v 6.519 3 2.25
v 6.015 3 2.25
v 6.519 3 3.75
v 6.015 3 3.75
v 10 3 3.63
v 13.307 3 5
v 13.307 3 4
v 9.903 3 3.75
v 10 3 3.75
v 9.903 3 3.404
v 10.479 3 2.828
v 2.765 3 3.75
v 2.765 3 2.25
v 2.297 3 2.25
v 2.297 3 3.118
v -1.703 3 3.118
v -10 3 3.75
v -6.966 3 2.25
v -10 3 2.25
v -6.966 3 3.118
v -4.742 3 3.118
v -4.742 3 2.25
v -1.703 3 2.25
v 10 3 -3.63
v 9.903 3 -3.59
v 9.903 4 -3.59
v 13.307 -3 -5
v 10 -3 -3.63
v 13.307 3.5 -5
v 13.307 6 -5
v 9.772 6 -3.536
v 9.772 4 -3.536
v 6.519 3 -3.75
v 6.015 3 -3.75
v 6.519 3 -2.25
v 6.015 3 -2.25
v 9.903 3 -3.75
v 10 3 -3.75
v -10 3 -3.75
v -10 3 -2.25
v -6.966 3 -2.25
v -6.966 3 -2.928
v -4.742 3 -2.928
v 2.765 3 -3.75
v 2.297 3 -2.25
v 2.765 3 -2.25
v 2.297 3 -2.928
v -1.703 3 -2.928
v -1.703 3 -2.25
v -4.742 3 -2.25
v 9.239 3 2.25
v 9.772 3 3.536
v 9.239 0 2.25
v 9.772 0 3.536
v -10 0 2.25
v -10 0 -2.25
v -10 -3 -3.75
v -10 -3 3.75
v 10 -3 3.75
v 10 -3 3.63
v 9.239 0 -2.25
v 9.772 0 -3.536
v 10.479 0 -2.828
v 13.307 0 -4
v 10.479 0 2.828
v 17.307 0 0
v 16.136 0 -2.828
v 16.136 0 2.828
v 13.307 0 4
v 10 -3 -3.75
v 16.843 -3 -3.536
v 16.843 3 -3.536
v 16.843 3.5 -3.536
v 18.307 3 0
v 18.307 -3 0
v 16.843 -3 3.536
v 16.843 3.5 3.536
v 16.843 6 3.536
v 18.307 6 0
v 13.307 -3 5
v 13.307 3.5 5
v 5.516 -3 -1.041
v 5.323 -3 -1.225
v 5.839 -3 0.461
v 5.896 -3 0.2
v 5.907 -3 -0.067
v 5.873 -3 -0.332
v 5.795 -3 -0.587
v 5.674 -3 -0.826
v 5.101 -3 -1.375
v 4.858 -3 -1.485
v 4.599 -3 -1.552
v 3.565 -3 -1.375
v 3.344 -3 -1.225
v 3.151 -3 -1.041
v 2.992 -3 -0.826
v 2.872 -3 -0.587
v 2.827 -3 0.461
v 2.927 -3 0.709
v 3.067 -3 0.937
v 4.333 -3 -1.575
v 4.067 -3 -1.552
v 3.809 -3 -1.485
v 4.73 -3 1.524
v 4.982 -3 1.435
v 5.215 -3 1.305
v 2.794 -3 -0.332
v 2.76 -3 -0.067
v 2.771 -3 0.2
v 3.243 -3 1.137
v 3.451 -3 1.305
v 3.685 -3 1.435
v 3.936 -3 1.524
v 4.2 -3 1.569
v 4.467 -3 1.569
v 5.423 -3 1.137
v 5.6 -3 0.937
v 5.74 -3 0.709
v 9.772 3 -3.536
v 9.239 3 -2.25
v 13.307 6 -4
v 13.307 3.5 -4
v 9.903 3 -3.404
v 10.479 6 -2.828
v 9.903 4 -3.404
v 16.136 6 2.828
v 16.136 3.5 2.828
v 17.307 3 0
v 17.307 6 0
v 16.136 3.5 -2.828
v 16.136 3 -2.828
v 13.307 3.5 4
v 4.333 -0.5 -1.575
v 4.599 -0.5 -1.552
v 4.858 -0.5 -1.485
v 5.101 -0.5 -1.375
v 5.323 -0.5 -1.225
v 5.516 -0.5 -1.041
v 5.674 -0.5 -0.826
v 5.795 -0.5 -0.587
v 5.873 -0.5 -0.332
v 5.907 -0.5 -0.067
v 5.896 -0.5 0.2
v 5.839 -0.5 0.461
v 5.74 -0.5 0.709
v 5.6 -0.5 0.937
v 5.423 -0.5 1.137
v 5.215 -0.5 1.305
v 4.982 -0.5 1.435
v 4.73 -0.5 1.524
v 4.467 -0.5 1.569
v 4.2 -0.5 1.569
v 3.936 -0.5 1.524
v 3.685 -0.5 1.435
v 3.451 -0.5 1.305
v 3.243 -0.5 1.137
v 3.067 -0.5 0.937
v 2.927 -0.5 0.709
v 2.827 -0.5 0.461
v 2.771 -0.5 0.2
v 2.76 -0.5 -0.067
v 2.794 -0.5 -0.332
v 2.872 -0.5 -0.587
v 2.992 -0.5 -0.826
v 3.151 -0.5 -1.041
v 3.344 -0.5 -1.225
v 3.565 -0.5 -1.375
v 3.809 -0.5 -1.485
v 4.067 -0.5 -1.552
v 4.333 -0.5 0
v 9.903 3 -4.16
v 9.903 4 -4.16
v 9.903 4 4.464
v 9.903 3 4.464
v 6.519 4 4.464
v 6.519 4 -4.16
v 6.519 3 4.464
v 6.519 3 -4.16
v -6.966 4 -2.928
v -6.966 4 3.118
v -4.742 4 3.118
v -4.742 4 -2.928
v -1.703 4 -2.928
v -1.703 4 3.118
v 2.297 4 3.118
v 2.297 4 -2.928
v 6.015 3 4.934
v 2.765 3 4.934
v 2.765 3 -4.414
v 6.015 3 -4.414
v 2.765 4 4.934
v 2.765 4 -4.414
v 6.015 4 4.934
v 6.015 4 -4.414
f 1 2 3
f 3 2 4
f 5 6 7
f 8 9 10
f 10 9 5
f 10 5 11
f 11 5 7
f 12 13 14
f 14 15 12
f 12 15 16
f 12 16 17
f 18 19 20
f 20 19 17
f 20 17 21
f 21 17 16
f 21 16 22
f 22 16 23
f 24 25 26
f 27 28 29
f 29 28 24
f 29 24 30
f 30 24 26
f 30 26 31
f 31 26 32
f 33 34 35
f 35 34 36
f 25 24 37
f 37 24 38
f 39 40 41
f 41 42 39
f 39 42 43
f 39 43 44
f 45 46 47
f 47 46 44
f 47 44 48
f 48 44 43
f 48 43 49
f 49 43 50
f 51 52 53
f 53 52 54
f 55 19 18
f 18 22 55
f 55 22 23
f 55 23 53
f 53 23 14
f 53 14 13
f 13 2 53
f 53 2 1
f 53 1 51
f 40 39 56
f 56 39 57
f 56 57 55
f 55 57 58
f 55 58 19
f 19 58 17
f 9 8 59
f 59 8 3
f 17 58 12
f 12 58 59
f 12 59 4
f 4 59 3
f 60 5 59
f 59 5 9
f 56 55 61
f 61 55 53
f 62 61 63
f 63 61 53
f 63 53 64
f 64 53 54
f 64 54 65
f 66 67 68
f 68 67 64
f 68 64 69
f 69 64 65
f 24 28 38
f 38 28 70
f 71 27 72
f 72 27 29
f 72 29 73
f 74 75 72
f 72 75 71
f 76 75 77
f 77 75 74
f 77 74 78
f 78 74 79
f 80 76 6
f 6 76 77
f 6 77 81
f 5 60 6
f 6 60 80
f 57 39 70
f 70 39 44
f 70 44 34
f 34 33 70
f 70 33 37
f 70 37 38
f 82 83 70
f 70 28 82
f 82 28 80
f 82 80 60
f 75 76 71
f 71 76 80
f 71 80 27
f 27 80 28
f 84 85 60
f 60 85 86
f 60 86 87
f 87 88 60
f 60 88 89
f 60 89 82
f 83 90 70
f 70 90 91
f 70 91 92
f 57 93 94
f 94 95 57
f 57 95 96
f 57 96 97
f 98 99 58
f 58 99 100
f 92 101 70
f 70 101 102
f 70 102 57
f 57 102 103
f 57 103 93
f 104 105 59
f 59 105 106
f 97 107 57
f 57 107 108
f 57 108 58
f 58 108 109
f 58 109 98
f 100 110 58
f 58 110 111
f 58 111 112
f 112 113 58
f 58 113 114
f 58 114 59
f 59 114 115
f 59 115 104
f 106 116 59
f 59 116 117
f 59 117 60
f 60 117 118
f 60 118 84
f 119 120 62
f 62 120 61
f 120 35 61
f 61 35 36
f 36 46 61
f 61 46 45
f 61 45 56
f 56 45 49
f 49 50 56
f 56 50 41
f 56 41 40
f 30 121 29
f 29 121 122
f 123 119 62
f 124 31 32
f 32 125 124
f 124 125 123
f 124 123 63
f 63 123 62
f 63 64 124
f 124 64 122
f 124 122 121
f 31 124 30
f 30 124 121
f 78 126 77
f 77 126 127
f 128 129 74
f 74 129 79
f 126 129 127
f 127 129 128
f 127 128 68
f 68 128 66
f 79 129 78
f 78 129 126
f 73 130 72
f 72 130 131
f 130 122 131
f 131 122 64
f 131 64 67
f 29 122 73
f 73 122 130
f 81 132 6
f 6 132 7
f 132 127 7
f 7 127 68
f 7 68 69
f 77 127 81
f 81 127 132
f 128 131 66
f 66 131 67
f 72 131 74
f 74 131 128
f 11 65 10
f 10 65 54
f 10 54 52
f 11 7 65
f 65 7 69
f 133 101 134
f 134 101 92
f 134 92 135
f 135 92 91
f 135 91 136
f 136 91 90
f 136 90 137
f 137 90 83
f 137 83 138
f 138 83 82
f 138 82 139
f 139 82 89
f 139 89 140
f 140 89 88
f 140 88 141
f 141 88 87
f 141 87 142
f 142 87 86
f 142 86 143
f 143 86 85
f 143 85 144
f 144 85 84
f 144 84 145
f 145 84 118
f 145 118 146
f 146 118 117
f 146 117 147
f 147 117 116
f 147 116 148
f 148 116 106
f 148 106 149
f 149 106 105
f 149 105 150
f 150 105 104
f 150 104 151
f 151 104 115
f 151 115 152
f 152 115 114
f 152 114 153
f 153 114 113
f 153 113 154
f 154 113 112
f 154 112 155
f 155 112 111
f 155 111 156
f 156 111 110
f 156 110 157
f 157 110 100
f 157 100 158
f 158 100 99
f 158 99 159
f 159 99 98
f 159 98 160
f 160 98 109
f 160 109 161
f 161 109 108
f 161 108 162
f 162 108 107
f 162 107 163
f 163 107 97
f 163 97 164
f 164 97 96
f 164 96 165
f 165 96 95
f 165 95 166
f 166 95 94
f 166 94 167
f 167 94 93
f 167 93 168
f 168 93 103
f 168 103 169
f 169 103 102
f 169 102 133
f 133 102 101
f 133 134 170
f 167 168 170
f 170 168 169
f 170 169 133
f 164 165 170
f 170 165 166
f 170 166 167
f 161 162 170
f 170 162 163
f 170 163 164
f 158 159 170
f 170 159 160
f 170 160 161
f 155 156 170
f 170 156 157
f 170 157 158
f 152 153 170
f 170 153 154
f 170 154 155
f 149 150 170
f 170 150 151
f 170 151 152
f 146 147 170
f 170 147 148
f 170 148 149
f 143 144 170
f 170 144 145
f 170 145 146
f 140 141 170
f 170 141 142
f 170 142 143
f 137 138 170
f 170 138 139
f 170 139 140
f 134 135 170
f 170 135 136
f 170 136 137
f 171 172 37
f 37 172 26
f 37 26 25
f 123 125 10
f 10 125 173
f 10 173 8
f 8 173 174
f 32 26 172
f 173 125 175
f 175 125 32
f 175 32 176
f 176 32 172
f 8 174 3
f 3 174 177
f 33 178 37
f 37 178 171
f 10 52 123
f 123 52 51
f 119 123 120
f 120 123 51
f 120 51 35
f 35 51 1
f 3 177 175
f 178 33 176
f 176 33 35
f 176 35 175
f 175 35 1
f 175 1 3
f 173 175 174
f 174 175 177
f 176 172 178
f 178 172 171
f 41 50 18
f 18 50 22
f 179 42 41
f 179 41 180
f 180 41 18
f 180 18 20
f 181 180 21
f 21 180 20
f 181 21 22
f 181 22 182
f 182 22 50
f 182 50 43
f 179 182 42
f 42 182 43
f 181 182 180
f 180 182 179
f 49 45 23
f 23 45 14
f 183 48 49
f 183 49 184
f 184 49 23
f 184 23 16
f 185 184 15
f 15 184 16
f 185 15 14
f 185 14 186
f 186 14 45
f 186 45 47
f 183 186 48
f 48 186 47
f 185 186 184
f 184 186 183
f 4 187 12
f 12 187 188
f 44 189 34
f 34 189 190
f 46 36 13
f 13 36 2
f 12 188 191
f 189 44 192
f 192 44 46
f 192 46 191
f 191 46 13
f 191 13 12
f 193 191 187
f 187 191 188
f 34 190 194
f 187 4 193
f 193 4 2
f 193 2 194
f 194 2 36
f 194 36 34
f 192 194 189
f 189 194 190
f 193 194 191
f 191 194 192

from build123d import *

# Parameters (mm, degrees)
SALIENTE_EXTRUIR1_DEPTH   = 3
SALIENTE_EXTRUIR1_2_DEPTH = 3
SALIENTE_EXTRUIR2_DEPTH   = 6
SALIENTE_EXTRUIR2_2_DEPTH = 6
SALIENTE_EXTRUIR3_DEPTH   = 3.5
SALIENTE_EXTRUIR3_2_DEPTH = 3.5
SALIENTE_EXTRUIR4_DEPTH   = 3
SALIENTE_EXTRUIR4_2_DEPTH = 3
SALIENTE_EXTRUIR5_DEPTH   = 3
CROQUIS3_R                = 1.575
CORTAR_EXTRUIR1_DEPTH     = 2.5
CROQUIS4_W                = 3.383823373
CROQUIS4_H                = 8.6242578
CROQUIS4_W_2              = 3.249859327
CROQUIS4_H_2              = 9.348028676
CROQUIS4_W_3              = 4.000427531
CROQUIS4_H_3              = 6.045673659
CROQUIS4_W_4              = 2.224540958
SALIENTE_EXTRUIR6_DEPTH   = 1


with BuildPart() as part:
    # Croquis1 → Saliente-Extruir1 (new body)
    with BuildSketch(Plane(origin=(0, 0, 0), x_dir=(1, 0, 0), z_dir=(0, 1, 0))):
        Polygon((-10, -2.25), (-10, -3.75), (10, -3.75), (10, -3.630117405), (9.771655233, -3.535533906), (9.239169654, -2.25), align=None)
    extrude(amount=SALIENTE_EXTRUIR1_DEPTH)



with BuildPart() as body_2:
    # Croquis1 → Saliente-Extruir1 2 (new body)
    with BuildSketch(Plane(origin=(0, 0, 0), x_dir=(1, 0, 0), z_dir=(0, 1, 0))):
        Polygon((-10, 3.75), (-10, 2.25), (9.239169654, 2.25), (9.771655233, 3.535533906), (10, 3.630117405), (10, 3.75), align=None)
    extrude(amount=SALIENTE_EXTRUIR1_2_DEPTH)


with BuildPart() as body_3:
    # Croquis1<3> → Saliente-Extruir2 (new body)
    with BuildSketch(Plane(origin=(0, 0, 0), x_dir=(1, 0, 0), z_dir=(0, 1, 0))):
        Polygon((16.135616264, -2.828427125), (16.842723045, -3.535533906), (18.307189139, 0), (17.307189139, 0), align=None)
    extrude(amount=SALIENTE_EXTRUIR2_DEPTH)


with BuildPart() as body_4:
    # Croquis1<3> → Saliente-Extruir2 2 (new body)
    with BuildSketch(Plane(origin=(0, 0, 0), x_dir=(1, 0, 0), z_dir=(0, 1, 0))):
        Polygon((9.771655233, 3.535533906), (10.478762014, 2.828427125), (13.307189139, 4), (13.307189139, 5), align=None)
    extrude(amount=SALIENTE_EXTRUIR2_2_DEPTH)


with BuildPart() as body_5:
    # Croquis1<4> → Saliente-Extruir3 (new body)
    with BuildSketch(Plane(origin=(0, 0, 0), x_dir=(1, 0, 0), z_dir=(0, 1, 0))):
        Polygon((13.307189139, -4), (13.307189139, -5), (16.842723045, -3.535533906), (16.135616264, -2.828427125), align=None)
    extrude(amount=SALIENTE_EXTRUIR3_DEPTH)


with BuildPart() as body_6:
    # Croquis1<4> → Saliente-Extruir3 2 (new body)
    with BuildSketch(Plane(origin=(0, 0, 0), x_dir=(1, 0, 0), z_dir=(0, 1, 0))):
        Polygon((16.135616264, 2.828427125), (16.842723045, 3.535533906), (13.307189139, 5), (13.307189139, 4), align=None)
    extrude(amount=SALIENTE_EXTRUIR3_2_DEPTH)


with BuildPart() as body_7:
    # Croquis1<5> → Saliente-Extruir4 (new body)
    with BuildSketch(Plane(origin=(0, 0, 0), x_dir=(1, 0, 0), z_dir=(0, 1, 0))):
        Polygon((9.771655233, -3.535533906), (13.307189139, -5), (13.307189139, -4), (10.478762014, -2.828427125), align=None)
    extrude(amount=SALIENTE_EXTRUIR4_DEPTH)


with BuildPart() as body_8:
    # Croquis1<5> → Saliente-Extruir4 2 (new body)
    with BuildSketch(Plane(origin=(0, 0, 0), x_dir=(1, 0, 0), z_dir=(0, 1, 0))):
        Polygon((17.307189139, 0), (18.307189139, 0), (16.842723045, 3.535533906), (16.135616264, 2.828427125), align=None)
    extrude(amount=SALIENTE_EXTRUIR4_2_DEPTH)


with BuildPart() as part_1:
    add(part.part)

    add(body_2.part)  # Saliente-Extruir5 merges body 2

    add(body_3.part)  # Saliente-Extruir5 merges body 3

    add(body_4.part)  # Saliente-Extruir5 merges body 4

    add(body_5.part)  # Saliente-Extruir5 merges body 5

    add(body_6.part)  # Saliente-Extruir5 merges body 6

    add(body_7.part)  # Saliente-Extruir5 merges body 7

    add(body_8.part)  # Saliente-Extruir5 merges body 8
    # Croquis2 → Saliente-Extruir5 (add)
    with BuildSketch(Plane.XZ):
        Polygon((10, 3.75), (-10, 3.75), (-10, -3.75), (10, -3.75), (10, -3.630117405), (13.307189139, -5), (16.842723045, -3.535533906), (18.307189139, 0), (16.842723045, 3.535533906), (13.307189139, 5), (10, 3.630117405), align=None)
    extrude(amount=SALIENTE_EXTRUIR5_DEPTH)

    # Croquis3 → Cortar-Extruir1 (cut)
    with BuildSketch(Plane.XZ.offset(3)):
        with Locations((4.333266607, 0)):
            Circle(CROQUIS3_R)
    extrude(amount=-CORTAR_EXTRUIR1_DEPTH, mode=Mode.SUBTRACT)

    # Croquis4 → Saliente-Extruir6 (add)
    with BuildSketch(Plane(origin=(0, 3, 0), x_dir=(1, 0, 0), z_dir=(0, 1, 0))):
        with Locations((8.211188083, -0.151851299)):
            Rectangle(CROQUIS4_W, CROQUIS4_H)
        with Locations((4.390228963, -0.260399993)):
            Rectangle(CROQUIS4_W_2, CROQUIS4_H_2)
        with Locations((0.297050365, -0.094855663)):
            Rectangle(CROQUIS4_W_3, CROQUIS4_H_3)
        with Locations((-5.85391415, -0.094855663)):
            Rectangle(CROQUIS4_W_4, CROQUIS4_H_3)
    extrude(amount=SALIENTE_EXTRUIR6_DEPTH)


solid = part_1.part
